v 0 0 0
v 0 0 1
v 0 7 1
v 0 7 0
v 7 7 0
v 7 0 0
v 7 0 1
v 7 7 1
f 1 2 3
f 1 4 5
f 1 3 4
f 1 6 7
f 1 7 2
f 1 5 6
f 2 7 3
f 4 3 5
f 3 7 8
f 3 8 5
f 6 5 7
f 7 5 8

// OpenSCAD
/* Warning, this is a very basic generator with a lot of approximation 
input data : [VQFN, SYB, 7x7x1mm, 32, , B, C04-21422B]
generated by com.zoubworld.electronics.cad.model3d.Basic
Date : Sun Feb 15 10:50:49 CET 2026
*/

//body
color("black")
translate([0,0,0])
cube([7.0,7.0,1.0], center=false);
